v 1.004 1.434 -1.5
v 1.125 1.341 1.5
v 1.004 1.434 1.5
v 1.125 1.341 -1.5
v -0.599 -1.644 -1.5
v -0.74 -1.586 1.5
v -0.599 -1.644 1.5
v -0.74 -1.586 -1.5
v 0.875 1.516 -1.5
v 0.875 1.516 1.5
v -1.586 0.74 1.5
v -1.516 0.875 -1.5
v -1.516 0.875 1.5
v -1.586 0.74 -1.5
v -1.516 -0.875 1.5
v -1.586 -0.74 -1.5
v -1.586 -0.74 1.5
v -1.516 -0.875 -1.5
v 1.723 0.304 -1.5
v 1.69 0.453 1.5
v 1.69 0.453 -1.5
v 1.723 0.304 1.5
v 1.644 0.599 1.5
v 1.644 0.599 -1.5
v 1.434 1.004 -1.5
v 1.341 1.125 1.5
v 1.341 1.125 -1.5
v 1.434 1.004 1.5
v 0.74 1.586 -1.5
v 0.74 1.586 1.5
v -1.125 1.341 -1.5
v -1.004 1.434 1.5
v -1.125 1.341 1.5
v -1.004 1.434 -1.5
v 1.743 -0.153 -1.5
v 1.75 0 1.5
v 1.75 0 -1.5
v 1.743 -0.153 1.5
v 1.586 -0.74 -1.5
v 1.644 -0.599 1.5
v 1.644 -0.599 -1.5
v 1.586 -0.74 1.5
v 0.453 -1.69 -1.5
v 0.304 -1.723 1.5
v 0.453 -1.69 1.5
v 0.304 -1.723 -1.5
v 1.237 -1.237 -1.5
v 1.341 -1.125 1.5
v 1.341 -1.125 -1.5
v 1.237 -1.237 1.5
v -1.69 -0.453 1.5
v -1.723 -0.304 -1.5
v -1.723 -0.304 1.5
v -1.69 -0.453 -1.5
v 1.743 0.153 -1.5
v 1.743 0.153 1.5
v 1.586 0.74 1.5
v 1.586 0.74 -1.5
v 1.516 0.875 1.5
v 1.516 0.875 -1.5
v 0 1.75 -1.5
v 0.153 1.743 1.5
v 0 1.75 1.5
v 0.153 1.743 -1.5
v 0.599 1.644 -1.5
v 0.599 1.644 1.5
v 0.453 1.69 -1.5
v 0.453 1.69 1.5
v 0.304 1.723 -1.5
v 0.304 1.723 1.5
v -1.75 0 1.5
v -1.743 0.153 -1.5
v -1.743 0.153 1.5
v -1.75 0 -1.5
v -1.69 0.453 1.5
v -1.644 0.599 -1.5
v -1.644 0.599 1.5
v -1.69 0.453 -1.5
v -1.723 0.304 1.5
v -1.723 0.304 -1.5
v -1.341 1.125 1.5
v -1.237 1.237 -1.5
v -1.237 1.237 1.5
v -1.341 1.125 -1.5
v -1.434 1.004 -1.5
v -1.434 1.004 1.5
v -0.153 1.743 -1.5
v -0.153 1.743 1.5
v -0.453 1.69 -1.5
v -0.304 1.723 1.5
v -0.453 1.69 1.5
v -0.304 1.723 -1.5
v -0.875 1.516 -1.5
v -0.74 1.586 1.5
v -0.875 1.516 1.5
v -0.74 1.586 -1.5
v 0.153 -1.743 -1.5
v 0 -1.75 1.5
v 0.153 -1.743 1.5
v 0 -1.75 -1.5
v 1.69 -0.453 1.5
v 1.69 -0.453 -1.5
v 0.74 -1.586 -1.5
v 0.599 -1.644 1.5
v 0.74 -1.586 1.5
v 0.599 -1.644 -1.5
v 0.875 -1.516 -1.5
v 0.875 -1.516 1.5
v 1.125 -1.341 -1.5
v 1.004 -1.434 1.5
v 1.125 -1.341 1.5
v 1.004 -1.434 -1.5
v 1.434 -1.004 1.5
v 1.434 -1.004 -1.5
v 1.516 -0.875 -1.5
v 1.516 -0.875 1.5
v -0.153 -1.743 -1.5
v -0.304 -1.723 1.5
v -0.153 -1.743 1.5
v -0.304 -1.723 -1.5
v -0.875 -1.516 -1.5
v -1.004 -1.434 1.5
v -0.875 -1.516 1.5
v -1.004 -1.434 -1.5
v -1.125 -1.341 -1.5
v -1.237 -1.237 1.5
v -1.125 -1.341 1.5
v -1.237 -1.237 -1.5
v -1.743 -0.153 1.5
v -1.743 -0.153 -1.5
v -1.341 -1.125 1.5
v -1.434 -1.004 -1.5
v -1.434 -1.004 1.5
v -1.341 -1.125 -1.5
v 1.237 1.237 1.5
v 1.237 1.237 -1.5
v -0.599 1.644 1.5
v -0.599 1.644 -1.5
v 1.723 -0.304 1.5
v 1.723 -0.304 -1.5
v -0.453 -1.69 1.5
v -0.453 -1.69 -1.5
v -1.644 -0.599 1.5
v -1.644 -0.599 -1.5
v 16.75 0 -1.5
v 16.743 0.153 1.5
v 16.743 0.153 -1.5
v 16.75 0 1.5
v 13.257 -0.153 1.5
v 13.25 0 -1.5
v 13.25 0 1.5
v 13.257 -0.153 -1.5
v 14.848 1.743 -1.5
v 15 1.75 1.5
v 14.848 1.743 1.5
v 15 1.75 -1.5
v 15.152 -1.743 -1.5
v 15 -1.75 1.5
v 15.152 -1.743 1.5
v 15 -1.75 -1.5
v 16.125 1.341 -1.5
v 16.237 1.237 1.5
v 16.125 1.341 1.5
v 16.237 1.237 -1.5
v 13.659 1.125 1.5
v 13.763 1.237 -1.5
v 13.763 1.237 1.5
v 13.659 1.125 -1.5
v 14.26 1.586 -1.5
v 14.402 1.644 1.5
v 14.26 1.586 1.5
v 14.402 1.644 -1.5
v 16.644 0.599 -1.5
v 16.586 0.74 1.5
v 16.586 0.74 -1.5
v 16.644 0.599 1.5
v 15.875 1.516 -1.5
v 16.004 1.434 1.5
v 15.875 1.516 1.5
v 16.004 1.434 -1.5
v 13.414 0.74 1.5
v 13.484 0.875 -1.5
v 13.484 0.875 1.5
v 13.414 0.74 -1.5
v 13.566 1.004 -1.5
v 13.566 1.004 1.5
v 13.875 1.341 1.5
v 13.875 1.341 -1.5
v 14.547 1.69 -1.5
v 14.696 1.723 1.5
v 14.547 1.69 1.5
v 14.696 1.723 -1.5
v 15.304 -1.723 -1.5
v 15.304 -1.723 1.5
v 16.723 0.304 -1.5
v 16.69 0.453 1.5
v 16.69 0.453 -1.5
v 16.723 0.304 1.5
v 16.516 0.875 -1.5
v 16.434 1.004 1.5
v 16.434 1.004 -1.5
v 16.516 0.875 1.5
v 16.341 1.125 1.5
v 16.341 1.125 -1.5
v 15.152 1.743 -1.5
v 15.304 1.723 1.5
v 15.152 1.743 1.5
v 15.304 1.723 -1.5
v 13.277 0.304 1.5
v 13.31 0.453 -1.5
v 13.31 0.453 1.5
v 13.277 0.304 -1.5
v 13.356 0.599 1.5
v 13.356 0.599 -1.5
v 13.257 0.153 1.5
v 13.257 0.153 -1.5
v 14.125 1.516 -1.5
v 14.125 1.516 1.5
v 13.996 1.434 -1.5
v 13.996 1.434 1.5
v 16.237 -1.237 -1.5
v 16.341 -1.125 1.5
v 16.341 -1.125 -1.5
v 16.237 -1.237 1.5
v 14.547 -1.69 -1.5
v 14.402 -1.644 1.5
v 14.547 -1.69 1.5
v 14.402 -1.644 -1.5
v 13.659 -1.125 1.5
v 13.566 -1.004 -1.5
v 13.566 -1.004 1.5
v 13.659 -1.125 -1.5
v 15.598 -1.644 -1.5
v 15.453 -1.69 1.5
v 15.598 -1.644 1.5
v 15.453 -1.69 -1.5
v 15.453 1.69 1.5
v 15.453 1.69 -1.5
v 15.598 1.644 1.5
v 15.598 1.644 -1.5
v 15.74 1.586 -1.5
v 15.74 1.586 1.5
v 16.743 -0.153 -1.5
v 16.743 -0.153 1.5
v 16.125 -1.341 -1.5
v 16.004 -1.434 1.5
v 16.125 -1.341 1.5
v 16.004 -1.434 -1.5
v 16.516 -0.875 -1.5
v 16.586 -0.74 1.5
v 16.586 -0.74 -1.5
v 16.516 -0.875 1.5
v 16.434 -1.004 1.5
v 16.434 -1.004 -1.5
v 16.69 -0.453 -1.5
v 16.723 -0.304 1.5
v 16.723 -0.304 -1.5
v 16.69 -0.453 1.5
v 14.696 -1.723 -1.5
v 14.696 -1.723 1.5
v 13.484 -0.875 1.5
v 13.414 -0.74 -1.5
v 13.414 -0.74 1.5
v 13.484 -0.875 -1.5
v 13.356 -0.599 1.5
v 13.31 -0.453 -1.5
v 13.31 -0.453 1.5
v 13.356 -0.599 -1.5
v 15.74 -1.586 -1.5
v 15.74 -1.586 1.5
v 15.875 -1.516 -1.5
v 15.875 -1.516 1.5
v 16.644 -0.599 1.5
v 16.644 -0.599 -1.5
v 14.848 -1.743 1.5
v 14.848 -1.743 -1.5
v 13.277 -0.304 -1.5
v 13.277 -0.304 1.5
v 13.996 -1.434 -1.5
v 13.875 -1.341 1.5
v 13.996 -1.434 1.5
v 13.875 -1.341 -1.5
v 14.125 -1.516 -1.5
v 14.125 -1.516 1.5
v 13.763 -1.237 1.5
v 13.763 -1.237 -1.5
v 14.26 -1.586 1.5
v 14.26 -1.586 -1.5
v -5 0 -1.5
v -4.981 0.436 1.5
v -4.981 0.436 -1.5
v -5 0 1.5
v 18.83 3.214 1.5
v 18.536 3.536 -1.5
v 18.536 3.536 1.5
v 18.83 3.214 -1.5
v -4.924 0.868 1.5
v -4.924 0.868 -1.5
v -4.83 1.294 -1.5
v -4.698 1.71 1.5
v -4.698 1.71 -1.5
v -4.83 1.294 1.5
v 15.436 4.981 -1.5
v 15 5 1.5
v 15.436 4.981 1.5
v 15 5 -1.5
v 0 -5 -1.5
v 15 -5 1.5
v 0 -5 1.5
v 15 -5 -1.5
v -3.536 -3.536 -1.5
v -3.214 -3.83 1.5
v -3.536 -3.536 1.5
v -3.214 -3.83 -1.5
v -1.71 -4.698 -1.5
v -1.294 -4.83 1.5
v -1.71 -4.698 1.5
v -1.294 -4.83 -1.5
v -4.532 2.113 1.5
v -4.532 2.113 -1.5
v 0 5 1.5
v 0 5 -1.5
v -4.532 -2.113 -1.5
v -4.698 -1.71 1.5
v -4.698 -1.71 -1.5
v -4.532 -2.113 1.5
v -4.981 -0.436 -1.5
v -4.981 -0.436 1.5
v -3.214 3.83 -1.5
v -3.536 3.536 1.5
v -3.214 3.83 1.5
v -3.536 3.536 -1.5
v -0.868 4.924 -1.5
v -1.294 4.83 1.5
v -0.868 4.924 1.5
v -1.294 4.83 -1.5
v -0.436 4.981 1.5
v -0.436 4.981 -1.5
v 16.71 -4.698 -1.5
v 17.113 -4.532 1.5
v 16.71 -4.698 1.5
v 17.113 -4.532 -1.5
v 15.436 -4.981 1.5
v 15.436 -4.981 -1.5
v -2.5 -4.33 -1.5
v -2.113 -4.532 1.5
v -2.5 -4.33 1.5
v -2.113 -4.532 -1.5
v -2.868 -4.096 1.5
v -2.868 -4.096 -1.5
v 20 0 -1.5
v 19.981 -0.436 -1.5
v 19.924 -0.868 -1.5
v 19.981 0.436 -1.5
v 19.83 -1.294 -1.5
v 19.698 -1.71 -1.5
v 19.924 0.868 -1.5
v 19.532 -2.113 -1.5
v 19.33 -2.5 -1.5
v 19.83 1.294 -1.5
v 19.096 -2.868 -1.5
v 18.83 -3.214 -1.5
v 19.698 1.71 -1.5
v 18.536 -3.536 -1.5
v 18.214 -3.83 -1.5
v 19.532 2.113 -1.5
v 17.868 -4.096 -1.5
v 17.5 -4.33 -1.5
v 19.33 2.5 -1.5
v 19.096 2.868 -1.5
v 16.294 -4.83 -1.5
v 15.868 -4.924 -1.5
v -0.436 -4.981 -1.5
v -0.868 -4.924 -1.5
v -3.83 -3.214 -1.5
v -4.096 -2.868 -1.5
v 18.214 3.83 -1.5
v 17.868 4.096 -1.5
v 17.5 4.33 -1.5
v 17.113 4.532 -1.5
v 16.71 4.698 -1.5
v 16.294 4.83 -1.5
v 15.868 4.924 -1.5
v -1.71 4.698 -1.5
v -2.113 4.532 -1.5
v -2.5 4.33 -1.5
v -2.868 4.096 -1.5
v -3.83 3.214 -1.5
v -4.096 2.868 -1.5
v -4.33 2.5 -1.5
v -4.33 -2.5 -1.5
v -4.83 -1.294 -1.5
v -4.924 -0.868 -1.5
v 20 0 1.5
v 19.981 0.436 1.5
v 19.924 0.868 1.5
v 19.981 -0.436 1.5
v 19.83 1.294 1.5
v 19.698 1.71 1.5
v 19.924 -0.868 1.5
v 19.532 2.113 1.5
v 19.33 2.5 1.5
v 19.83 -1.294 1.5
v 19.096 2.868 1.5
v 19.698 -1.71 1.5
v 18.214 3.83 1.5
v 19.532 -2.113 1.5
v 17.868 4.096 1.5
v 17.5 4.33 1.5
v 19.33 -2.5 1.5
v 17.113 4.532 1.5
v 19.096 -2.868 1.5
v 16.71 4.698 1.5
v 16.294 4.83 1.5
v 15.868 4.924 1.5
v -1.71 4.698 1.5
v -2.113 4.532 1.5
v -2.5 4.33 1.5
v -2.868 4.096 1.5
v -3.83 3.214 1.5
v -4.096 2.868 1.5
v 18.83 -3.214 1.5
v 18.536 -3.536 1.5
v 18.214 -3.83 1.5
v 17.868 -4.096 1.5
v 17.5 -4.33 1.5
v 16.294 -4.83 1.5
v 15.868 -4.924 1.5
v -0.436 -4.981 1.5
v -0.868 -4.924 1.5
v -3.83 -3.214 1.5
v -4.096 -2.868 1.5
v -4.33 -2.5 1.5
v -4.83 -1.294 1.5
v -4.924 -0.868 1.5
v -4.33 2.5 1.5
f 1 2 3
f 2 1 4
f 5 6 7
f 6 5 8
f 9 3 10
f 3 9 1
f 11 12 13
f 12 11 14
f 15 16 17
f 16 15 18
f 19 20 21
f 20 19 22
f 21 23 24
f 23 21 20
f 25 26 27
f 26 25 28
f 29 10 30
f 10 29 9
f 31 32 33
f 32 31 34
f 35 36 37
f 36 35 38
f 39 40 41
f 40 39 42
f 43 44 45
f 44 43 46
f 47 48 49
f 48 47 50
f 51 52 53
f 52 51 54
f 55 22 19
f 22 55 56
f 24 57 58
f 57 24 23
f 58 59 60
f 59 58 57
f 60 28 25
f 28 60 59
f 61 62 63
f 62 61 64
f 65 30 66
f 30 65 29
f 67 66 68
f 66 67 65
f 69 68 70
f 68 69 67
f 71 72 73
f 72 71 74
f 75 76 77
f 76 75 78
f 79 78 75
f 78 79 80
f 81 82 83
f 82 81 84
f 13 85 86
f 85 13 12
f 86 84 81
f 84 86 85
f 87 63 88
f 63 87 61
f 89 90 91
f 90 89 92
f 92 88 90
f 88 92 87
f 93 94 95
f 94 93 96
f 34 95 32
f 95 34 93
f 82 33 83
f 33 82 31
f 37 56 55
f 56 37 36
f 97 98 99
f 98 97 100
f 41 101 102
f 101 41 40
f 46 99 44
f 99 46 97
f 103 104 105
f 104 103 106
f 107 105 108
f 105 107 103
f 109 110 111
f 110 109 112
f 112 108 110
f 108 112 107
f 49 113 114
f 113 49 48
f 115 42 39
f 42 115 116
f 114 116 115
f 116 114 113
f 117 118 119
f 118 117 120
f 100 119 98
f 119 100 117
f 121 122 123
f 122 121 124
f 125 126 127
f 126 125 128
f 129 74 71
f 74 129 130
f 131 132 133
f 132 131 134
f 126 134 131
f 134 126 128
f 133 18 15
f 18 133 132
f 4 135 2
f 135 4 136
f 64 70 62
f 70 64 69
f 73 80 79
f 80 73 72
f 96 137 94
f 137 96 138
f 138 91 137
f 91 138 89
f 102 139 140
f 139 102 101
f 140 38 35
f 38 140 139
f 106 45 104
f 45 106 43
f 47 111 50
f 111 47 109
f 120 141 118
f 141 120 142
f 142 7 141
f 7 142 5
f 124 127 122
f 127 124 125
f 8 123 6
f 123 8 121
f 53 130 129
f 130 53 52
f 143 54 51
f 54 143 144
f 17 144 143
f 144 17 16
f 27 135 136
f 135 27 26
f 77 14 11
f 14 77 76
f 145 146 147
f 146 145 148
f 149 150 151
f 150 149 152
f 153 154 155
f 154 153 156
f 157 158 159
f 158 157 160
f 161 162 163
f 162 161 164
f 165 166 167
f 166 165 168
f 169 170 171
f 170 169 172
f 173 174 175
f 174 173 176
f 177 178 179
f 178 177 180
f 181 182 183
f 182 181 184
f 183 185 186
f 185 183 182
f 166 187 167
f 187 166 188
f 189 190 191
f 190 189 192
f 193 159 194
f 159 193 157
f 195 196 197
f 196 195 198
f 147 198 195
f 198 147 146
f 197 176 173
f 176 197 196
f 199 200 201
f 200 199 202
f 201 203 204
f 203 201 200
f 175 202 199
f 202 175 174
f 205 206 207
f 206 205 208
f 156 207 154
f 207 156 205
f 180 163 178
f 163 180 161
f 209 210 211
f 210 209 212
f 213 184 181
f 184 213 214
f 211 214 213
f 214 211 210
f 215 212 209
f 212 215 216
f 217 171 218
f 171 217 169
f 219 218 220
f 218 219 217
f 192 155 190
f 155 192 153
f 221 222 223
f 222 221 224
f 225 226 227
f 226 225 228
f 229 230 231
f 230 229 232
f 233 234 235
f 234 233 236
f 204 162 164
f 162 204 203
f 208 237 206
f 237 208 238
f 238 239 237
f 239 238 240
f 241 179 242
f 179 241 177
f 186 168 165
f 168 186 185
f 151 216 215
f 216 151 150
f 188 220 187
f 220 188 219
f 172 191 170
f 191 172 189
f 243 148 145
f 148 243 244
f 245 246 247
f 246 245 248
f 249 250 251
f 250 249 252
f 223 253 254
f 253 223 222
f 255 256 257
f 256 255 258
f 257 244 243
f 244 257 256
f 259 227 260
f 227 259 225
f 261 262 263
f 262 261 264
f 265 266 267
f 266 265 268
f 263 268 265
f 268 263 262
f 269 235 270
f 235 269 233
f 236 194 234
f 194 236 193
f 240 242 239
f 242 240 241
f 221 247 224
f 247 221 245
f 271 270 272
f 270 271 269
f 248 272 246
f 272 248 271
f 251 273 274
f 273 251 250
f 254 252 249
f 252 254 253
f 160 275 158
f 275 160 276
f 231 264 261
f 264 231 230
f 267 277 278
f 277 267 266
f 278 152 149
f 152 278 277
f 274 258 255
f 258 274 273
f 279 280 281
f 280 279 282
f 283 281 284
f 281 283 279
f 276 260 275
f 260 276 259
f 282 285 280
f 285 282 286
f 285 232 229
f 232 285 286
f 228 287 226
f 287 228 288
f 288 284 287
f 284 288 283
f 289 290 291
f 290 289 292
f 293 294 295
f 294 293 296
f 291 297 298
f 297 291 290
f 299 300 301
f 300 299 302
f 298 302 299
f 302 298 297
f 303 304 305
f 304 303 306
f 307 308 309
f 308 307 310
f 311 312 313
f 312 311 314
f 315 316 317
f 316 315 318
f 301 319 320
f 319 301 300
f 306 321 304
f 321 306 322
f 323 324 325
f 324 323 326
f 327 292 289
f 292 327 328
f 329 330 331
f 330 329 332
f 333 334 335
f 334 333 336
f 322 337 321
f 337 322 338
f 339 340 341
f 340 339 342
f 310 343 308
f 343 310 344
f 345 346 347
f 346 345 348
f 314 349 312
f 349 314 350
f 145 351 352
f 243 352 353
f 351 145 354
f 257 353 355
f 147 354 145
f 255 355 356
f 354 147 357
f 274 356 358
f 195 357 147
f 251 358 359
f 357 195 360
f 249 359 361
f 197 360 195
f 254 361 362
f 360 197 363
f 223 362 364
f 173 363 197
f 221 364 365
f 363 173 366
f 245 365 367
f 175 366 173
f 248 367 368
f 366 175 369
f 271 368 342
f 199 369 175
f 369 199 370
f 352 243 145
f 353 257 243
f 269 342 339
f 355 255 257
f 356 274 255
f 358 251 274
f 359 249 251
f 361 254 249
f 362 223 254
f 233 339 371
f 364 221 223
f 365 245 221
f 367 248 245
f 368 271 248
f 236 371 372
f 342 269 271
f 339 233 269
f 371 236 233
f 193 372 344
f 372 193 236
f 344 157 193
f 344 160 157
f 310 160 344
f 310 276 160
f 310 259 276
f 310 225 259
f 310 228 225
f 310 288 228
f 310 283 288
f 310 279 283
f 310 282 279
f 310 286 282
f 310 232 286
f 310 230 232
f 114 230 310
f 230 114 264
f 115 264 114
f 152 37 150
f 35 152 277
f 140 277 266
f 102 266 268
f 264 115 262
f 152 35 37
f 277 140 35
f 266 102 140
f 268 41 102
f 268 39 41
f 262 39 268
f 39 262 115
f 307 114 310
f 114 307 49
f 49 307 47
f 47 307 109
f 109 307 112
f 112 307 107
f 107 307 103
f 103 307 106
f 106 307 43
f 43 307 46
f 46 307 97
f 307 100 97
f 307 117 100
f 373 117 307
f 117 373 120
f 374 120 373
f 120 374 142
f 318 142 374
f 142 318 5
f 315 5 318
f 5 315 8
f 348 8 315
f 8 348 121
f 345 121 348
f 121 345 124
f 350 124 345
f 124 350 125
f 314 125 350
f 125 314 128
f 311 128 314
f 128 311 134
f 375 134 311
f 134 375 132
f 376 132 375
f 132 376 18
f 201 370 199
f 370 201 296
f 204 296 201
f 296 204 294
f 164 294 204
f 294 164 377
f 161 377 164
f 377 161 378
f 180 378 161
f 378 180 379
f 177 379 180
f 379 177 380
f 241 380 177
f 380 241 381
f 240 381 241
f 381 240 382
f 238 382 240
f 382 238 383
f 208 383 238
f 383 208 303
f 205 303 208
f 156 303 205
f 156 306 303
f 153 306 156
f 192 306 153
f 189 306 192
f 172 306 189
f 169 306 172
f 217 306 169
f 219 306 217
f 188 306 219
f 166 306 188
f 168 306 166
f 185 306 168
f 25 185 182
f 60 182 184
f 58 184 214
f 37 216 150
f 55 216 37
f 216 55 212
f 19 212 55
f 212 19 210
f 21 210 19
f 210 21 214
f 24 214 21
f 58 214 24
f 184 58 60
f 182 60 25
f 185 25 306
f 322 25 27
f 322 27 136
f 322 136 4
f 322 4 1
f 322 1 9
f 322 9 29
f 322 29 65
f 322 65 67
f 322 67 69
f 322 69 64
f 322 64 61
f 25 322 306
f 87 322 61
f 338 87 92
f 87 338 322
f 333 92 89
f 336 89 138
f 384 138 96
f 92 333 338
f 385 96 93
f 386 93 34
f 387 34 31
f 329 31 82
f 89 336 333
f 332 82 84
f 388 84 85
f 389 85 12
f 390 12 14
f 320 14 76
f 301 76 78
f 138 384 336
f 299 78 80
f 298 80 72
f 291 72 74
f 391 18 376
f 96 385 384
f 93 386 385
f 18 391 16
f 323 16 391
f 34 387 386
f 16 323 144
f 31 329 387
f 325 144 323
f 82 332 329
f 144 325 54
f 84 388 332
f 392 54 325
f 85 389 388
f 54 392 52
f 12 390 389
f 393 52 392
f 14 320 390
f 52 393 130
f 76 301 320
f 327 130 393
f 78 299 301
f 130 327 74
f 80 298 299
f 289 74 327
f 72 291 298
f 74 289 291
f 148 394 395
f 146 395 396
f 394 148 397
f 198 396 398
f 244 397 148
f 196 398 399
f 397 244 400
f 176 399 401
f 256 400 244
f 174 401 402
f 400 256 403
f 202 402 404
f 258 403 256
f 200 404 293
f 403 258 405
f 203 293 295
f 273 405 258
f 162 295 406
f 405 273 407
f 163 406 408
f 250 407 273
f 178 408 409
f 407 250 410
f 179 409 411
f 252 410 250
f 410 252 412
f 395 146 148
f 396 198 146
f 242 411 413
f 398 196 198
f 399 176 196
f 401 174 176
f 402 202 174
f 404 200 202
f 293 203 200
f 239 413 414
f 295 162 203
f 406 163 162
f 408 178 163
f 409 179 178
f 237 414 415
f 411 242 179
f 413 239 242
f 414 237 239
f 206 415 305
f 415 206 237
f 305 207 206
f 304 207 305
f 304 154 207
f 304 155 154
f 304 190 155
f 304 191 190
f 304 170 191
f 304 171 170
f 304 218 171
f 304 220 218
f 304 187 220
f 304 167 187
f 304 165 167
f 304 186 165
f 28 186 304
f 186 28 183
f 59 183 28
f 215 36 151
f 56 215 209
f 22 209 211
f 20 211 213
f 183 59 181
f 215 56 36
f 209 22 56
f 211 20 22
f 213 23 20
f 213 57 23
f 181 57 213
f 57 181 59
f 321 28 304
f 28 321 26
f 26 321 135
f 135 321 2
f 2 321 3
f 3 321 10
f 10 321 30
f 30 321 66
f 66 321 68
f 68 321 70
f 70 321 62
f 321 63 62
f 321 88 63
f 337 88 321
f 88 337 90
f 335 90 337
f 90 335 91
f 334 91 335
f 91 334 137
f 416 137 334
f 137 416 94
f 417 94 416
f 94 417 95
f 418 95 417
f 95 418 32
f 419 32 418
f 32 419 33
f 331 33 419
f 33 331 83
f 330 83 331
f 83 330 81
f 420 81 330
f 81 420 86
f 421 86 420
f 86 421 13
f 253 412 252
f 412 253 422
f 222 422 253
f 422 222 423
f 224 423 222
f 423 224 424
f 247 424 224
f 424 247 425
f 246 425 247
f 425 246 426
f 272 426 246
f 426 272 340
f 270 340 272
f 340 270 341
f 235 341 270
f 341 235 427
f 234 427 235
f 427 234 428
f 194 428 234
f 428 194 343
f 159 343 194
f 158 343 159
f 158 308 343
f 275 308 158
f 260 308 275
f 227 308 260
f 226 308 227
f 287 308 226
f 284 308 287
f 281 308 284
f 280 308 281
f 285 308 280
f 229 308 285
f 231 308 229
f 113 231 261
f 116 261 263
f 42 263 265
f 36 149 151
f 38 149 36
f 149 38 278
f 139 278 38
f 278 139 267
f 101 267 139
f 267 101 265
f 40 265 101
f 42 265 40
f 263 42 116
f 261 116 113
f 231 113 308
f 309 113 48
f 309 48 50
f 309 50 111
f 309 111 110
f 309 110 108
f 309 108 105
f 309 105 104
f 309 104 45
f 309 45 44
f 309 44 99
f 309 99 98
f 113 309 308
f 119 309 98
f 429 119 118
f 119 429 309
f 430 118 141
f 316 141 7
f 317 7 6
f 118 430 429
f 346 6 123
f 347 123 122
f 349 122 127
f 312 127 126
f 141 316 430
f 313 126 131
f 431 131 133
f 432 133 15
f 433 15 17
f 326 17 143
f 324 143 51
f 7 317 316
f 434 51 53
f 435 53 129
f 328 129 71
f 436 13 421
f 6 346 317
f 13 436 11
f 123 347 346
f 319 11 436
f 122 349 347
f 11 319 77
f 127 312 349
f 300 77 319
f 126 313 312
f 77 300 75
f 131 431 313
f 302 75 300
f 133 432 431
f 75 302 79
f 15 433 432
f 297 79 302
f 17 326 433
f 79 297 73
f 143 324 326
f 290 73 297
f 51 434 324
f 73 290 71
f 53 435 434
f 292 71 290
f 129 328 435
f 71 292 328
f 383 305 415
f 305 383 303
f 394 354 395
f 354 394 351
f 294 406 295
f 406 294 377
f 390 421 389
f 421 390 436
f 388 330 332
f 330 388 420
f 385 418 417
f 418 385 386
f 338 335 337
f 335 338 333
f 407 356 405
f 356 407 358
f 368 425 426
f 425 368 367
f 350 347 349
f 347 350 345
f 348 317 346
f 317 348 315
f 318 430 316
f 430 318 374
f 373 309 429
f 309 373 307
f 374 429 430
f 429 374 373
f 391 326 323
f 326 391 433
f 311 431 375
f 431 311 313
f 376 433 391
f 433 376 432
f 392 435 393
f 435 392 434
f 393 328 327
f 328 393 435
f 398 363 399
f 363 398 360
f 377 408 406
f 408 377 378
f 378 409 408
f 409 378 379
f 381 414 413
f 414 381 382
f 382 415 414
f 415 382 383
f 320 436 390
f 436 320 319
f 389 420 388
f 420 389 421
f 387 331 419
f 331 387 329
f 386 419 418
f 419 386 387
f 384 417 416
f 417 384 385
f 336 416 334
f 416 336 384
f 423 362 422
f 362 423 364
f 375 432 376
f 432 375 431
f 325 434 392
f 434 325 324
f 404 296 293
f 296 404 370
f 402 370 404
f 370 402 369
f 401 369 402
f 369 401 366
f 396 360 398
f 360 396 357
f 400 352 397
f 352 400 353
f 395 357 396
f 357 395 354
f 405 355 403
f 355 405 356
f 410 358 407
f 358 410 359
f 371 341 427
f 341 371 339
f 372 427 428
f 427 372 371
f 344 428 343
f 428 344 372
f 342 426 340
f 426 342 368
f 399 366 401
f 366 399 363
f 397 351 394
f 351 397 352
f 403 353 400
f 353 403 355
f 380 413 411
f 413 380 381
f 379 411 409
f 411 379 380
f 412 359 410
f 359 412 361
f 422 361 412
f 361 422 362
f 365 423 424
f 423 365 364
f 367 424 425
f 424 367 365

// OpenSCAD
$fa=5; $fs=0.1;

difference(){
	hull(){
		cylinder(h=3, r=5, center=true);
		translate([15, 0, 0]) cylinder(h=3, r=5, center=true);
	}

	union(){
		cylinder(h=3.1, r=1.75, center=true);
		translate([15, 0, 0]) cylinder(h=3.1, r=1.75, center=true);
	}
}    
